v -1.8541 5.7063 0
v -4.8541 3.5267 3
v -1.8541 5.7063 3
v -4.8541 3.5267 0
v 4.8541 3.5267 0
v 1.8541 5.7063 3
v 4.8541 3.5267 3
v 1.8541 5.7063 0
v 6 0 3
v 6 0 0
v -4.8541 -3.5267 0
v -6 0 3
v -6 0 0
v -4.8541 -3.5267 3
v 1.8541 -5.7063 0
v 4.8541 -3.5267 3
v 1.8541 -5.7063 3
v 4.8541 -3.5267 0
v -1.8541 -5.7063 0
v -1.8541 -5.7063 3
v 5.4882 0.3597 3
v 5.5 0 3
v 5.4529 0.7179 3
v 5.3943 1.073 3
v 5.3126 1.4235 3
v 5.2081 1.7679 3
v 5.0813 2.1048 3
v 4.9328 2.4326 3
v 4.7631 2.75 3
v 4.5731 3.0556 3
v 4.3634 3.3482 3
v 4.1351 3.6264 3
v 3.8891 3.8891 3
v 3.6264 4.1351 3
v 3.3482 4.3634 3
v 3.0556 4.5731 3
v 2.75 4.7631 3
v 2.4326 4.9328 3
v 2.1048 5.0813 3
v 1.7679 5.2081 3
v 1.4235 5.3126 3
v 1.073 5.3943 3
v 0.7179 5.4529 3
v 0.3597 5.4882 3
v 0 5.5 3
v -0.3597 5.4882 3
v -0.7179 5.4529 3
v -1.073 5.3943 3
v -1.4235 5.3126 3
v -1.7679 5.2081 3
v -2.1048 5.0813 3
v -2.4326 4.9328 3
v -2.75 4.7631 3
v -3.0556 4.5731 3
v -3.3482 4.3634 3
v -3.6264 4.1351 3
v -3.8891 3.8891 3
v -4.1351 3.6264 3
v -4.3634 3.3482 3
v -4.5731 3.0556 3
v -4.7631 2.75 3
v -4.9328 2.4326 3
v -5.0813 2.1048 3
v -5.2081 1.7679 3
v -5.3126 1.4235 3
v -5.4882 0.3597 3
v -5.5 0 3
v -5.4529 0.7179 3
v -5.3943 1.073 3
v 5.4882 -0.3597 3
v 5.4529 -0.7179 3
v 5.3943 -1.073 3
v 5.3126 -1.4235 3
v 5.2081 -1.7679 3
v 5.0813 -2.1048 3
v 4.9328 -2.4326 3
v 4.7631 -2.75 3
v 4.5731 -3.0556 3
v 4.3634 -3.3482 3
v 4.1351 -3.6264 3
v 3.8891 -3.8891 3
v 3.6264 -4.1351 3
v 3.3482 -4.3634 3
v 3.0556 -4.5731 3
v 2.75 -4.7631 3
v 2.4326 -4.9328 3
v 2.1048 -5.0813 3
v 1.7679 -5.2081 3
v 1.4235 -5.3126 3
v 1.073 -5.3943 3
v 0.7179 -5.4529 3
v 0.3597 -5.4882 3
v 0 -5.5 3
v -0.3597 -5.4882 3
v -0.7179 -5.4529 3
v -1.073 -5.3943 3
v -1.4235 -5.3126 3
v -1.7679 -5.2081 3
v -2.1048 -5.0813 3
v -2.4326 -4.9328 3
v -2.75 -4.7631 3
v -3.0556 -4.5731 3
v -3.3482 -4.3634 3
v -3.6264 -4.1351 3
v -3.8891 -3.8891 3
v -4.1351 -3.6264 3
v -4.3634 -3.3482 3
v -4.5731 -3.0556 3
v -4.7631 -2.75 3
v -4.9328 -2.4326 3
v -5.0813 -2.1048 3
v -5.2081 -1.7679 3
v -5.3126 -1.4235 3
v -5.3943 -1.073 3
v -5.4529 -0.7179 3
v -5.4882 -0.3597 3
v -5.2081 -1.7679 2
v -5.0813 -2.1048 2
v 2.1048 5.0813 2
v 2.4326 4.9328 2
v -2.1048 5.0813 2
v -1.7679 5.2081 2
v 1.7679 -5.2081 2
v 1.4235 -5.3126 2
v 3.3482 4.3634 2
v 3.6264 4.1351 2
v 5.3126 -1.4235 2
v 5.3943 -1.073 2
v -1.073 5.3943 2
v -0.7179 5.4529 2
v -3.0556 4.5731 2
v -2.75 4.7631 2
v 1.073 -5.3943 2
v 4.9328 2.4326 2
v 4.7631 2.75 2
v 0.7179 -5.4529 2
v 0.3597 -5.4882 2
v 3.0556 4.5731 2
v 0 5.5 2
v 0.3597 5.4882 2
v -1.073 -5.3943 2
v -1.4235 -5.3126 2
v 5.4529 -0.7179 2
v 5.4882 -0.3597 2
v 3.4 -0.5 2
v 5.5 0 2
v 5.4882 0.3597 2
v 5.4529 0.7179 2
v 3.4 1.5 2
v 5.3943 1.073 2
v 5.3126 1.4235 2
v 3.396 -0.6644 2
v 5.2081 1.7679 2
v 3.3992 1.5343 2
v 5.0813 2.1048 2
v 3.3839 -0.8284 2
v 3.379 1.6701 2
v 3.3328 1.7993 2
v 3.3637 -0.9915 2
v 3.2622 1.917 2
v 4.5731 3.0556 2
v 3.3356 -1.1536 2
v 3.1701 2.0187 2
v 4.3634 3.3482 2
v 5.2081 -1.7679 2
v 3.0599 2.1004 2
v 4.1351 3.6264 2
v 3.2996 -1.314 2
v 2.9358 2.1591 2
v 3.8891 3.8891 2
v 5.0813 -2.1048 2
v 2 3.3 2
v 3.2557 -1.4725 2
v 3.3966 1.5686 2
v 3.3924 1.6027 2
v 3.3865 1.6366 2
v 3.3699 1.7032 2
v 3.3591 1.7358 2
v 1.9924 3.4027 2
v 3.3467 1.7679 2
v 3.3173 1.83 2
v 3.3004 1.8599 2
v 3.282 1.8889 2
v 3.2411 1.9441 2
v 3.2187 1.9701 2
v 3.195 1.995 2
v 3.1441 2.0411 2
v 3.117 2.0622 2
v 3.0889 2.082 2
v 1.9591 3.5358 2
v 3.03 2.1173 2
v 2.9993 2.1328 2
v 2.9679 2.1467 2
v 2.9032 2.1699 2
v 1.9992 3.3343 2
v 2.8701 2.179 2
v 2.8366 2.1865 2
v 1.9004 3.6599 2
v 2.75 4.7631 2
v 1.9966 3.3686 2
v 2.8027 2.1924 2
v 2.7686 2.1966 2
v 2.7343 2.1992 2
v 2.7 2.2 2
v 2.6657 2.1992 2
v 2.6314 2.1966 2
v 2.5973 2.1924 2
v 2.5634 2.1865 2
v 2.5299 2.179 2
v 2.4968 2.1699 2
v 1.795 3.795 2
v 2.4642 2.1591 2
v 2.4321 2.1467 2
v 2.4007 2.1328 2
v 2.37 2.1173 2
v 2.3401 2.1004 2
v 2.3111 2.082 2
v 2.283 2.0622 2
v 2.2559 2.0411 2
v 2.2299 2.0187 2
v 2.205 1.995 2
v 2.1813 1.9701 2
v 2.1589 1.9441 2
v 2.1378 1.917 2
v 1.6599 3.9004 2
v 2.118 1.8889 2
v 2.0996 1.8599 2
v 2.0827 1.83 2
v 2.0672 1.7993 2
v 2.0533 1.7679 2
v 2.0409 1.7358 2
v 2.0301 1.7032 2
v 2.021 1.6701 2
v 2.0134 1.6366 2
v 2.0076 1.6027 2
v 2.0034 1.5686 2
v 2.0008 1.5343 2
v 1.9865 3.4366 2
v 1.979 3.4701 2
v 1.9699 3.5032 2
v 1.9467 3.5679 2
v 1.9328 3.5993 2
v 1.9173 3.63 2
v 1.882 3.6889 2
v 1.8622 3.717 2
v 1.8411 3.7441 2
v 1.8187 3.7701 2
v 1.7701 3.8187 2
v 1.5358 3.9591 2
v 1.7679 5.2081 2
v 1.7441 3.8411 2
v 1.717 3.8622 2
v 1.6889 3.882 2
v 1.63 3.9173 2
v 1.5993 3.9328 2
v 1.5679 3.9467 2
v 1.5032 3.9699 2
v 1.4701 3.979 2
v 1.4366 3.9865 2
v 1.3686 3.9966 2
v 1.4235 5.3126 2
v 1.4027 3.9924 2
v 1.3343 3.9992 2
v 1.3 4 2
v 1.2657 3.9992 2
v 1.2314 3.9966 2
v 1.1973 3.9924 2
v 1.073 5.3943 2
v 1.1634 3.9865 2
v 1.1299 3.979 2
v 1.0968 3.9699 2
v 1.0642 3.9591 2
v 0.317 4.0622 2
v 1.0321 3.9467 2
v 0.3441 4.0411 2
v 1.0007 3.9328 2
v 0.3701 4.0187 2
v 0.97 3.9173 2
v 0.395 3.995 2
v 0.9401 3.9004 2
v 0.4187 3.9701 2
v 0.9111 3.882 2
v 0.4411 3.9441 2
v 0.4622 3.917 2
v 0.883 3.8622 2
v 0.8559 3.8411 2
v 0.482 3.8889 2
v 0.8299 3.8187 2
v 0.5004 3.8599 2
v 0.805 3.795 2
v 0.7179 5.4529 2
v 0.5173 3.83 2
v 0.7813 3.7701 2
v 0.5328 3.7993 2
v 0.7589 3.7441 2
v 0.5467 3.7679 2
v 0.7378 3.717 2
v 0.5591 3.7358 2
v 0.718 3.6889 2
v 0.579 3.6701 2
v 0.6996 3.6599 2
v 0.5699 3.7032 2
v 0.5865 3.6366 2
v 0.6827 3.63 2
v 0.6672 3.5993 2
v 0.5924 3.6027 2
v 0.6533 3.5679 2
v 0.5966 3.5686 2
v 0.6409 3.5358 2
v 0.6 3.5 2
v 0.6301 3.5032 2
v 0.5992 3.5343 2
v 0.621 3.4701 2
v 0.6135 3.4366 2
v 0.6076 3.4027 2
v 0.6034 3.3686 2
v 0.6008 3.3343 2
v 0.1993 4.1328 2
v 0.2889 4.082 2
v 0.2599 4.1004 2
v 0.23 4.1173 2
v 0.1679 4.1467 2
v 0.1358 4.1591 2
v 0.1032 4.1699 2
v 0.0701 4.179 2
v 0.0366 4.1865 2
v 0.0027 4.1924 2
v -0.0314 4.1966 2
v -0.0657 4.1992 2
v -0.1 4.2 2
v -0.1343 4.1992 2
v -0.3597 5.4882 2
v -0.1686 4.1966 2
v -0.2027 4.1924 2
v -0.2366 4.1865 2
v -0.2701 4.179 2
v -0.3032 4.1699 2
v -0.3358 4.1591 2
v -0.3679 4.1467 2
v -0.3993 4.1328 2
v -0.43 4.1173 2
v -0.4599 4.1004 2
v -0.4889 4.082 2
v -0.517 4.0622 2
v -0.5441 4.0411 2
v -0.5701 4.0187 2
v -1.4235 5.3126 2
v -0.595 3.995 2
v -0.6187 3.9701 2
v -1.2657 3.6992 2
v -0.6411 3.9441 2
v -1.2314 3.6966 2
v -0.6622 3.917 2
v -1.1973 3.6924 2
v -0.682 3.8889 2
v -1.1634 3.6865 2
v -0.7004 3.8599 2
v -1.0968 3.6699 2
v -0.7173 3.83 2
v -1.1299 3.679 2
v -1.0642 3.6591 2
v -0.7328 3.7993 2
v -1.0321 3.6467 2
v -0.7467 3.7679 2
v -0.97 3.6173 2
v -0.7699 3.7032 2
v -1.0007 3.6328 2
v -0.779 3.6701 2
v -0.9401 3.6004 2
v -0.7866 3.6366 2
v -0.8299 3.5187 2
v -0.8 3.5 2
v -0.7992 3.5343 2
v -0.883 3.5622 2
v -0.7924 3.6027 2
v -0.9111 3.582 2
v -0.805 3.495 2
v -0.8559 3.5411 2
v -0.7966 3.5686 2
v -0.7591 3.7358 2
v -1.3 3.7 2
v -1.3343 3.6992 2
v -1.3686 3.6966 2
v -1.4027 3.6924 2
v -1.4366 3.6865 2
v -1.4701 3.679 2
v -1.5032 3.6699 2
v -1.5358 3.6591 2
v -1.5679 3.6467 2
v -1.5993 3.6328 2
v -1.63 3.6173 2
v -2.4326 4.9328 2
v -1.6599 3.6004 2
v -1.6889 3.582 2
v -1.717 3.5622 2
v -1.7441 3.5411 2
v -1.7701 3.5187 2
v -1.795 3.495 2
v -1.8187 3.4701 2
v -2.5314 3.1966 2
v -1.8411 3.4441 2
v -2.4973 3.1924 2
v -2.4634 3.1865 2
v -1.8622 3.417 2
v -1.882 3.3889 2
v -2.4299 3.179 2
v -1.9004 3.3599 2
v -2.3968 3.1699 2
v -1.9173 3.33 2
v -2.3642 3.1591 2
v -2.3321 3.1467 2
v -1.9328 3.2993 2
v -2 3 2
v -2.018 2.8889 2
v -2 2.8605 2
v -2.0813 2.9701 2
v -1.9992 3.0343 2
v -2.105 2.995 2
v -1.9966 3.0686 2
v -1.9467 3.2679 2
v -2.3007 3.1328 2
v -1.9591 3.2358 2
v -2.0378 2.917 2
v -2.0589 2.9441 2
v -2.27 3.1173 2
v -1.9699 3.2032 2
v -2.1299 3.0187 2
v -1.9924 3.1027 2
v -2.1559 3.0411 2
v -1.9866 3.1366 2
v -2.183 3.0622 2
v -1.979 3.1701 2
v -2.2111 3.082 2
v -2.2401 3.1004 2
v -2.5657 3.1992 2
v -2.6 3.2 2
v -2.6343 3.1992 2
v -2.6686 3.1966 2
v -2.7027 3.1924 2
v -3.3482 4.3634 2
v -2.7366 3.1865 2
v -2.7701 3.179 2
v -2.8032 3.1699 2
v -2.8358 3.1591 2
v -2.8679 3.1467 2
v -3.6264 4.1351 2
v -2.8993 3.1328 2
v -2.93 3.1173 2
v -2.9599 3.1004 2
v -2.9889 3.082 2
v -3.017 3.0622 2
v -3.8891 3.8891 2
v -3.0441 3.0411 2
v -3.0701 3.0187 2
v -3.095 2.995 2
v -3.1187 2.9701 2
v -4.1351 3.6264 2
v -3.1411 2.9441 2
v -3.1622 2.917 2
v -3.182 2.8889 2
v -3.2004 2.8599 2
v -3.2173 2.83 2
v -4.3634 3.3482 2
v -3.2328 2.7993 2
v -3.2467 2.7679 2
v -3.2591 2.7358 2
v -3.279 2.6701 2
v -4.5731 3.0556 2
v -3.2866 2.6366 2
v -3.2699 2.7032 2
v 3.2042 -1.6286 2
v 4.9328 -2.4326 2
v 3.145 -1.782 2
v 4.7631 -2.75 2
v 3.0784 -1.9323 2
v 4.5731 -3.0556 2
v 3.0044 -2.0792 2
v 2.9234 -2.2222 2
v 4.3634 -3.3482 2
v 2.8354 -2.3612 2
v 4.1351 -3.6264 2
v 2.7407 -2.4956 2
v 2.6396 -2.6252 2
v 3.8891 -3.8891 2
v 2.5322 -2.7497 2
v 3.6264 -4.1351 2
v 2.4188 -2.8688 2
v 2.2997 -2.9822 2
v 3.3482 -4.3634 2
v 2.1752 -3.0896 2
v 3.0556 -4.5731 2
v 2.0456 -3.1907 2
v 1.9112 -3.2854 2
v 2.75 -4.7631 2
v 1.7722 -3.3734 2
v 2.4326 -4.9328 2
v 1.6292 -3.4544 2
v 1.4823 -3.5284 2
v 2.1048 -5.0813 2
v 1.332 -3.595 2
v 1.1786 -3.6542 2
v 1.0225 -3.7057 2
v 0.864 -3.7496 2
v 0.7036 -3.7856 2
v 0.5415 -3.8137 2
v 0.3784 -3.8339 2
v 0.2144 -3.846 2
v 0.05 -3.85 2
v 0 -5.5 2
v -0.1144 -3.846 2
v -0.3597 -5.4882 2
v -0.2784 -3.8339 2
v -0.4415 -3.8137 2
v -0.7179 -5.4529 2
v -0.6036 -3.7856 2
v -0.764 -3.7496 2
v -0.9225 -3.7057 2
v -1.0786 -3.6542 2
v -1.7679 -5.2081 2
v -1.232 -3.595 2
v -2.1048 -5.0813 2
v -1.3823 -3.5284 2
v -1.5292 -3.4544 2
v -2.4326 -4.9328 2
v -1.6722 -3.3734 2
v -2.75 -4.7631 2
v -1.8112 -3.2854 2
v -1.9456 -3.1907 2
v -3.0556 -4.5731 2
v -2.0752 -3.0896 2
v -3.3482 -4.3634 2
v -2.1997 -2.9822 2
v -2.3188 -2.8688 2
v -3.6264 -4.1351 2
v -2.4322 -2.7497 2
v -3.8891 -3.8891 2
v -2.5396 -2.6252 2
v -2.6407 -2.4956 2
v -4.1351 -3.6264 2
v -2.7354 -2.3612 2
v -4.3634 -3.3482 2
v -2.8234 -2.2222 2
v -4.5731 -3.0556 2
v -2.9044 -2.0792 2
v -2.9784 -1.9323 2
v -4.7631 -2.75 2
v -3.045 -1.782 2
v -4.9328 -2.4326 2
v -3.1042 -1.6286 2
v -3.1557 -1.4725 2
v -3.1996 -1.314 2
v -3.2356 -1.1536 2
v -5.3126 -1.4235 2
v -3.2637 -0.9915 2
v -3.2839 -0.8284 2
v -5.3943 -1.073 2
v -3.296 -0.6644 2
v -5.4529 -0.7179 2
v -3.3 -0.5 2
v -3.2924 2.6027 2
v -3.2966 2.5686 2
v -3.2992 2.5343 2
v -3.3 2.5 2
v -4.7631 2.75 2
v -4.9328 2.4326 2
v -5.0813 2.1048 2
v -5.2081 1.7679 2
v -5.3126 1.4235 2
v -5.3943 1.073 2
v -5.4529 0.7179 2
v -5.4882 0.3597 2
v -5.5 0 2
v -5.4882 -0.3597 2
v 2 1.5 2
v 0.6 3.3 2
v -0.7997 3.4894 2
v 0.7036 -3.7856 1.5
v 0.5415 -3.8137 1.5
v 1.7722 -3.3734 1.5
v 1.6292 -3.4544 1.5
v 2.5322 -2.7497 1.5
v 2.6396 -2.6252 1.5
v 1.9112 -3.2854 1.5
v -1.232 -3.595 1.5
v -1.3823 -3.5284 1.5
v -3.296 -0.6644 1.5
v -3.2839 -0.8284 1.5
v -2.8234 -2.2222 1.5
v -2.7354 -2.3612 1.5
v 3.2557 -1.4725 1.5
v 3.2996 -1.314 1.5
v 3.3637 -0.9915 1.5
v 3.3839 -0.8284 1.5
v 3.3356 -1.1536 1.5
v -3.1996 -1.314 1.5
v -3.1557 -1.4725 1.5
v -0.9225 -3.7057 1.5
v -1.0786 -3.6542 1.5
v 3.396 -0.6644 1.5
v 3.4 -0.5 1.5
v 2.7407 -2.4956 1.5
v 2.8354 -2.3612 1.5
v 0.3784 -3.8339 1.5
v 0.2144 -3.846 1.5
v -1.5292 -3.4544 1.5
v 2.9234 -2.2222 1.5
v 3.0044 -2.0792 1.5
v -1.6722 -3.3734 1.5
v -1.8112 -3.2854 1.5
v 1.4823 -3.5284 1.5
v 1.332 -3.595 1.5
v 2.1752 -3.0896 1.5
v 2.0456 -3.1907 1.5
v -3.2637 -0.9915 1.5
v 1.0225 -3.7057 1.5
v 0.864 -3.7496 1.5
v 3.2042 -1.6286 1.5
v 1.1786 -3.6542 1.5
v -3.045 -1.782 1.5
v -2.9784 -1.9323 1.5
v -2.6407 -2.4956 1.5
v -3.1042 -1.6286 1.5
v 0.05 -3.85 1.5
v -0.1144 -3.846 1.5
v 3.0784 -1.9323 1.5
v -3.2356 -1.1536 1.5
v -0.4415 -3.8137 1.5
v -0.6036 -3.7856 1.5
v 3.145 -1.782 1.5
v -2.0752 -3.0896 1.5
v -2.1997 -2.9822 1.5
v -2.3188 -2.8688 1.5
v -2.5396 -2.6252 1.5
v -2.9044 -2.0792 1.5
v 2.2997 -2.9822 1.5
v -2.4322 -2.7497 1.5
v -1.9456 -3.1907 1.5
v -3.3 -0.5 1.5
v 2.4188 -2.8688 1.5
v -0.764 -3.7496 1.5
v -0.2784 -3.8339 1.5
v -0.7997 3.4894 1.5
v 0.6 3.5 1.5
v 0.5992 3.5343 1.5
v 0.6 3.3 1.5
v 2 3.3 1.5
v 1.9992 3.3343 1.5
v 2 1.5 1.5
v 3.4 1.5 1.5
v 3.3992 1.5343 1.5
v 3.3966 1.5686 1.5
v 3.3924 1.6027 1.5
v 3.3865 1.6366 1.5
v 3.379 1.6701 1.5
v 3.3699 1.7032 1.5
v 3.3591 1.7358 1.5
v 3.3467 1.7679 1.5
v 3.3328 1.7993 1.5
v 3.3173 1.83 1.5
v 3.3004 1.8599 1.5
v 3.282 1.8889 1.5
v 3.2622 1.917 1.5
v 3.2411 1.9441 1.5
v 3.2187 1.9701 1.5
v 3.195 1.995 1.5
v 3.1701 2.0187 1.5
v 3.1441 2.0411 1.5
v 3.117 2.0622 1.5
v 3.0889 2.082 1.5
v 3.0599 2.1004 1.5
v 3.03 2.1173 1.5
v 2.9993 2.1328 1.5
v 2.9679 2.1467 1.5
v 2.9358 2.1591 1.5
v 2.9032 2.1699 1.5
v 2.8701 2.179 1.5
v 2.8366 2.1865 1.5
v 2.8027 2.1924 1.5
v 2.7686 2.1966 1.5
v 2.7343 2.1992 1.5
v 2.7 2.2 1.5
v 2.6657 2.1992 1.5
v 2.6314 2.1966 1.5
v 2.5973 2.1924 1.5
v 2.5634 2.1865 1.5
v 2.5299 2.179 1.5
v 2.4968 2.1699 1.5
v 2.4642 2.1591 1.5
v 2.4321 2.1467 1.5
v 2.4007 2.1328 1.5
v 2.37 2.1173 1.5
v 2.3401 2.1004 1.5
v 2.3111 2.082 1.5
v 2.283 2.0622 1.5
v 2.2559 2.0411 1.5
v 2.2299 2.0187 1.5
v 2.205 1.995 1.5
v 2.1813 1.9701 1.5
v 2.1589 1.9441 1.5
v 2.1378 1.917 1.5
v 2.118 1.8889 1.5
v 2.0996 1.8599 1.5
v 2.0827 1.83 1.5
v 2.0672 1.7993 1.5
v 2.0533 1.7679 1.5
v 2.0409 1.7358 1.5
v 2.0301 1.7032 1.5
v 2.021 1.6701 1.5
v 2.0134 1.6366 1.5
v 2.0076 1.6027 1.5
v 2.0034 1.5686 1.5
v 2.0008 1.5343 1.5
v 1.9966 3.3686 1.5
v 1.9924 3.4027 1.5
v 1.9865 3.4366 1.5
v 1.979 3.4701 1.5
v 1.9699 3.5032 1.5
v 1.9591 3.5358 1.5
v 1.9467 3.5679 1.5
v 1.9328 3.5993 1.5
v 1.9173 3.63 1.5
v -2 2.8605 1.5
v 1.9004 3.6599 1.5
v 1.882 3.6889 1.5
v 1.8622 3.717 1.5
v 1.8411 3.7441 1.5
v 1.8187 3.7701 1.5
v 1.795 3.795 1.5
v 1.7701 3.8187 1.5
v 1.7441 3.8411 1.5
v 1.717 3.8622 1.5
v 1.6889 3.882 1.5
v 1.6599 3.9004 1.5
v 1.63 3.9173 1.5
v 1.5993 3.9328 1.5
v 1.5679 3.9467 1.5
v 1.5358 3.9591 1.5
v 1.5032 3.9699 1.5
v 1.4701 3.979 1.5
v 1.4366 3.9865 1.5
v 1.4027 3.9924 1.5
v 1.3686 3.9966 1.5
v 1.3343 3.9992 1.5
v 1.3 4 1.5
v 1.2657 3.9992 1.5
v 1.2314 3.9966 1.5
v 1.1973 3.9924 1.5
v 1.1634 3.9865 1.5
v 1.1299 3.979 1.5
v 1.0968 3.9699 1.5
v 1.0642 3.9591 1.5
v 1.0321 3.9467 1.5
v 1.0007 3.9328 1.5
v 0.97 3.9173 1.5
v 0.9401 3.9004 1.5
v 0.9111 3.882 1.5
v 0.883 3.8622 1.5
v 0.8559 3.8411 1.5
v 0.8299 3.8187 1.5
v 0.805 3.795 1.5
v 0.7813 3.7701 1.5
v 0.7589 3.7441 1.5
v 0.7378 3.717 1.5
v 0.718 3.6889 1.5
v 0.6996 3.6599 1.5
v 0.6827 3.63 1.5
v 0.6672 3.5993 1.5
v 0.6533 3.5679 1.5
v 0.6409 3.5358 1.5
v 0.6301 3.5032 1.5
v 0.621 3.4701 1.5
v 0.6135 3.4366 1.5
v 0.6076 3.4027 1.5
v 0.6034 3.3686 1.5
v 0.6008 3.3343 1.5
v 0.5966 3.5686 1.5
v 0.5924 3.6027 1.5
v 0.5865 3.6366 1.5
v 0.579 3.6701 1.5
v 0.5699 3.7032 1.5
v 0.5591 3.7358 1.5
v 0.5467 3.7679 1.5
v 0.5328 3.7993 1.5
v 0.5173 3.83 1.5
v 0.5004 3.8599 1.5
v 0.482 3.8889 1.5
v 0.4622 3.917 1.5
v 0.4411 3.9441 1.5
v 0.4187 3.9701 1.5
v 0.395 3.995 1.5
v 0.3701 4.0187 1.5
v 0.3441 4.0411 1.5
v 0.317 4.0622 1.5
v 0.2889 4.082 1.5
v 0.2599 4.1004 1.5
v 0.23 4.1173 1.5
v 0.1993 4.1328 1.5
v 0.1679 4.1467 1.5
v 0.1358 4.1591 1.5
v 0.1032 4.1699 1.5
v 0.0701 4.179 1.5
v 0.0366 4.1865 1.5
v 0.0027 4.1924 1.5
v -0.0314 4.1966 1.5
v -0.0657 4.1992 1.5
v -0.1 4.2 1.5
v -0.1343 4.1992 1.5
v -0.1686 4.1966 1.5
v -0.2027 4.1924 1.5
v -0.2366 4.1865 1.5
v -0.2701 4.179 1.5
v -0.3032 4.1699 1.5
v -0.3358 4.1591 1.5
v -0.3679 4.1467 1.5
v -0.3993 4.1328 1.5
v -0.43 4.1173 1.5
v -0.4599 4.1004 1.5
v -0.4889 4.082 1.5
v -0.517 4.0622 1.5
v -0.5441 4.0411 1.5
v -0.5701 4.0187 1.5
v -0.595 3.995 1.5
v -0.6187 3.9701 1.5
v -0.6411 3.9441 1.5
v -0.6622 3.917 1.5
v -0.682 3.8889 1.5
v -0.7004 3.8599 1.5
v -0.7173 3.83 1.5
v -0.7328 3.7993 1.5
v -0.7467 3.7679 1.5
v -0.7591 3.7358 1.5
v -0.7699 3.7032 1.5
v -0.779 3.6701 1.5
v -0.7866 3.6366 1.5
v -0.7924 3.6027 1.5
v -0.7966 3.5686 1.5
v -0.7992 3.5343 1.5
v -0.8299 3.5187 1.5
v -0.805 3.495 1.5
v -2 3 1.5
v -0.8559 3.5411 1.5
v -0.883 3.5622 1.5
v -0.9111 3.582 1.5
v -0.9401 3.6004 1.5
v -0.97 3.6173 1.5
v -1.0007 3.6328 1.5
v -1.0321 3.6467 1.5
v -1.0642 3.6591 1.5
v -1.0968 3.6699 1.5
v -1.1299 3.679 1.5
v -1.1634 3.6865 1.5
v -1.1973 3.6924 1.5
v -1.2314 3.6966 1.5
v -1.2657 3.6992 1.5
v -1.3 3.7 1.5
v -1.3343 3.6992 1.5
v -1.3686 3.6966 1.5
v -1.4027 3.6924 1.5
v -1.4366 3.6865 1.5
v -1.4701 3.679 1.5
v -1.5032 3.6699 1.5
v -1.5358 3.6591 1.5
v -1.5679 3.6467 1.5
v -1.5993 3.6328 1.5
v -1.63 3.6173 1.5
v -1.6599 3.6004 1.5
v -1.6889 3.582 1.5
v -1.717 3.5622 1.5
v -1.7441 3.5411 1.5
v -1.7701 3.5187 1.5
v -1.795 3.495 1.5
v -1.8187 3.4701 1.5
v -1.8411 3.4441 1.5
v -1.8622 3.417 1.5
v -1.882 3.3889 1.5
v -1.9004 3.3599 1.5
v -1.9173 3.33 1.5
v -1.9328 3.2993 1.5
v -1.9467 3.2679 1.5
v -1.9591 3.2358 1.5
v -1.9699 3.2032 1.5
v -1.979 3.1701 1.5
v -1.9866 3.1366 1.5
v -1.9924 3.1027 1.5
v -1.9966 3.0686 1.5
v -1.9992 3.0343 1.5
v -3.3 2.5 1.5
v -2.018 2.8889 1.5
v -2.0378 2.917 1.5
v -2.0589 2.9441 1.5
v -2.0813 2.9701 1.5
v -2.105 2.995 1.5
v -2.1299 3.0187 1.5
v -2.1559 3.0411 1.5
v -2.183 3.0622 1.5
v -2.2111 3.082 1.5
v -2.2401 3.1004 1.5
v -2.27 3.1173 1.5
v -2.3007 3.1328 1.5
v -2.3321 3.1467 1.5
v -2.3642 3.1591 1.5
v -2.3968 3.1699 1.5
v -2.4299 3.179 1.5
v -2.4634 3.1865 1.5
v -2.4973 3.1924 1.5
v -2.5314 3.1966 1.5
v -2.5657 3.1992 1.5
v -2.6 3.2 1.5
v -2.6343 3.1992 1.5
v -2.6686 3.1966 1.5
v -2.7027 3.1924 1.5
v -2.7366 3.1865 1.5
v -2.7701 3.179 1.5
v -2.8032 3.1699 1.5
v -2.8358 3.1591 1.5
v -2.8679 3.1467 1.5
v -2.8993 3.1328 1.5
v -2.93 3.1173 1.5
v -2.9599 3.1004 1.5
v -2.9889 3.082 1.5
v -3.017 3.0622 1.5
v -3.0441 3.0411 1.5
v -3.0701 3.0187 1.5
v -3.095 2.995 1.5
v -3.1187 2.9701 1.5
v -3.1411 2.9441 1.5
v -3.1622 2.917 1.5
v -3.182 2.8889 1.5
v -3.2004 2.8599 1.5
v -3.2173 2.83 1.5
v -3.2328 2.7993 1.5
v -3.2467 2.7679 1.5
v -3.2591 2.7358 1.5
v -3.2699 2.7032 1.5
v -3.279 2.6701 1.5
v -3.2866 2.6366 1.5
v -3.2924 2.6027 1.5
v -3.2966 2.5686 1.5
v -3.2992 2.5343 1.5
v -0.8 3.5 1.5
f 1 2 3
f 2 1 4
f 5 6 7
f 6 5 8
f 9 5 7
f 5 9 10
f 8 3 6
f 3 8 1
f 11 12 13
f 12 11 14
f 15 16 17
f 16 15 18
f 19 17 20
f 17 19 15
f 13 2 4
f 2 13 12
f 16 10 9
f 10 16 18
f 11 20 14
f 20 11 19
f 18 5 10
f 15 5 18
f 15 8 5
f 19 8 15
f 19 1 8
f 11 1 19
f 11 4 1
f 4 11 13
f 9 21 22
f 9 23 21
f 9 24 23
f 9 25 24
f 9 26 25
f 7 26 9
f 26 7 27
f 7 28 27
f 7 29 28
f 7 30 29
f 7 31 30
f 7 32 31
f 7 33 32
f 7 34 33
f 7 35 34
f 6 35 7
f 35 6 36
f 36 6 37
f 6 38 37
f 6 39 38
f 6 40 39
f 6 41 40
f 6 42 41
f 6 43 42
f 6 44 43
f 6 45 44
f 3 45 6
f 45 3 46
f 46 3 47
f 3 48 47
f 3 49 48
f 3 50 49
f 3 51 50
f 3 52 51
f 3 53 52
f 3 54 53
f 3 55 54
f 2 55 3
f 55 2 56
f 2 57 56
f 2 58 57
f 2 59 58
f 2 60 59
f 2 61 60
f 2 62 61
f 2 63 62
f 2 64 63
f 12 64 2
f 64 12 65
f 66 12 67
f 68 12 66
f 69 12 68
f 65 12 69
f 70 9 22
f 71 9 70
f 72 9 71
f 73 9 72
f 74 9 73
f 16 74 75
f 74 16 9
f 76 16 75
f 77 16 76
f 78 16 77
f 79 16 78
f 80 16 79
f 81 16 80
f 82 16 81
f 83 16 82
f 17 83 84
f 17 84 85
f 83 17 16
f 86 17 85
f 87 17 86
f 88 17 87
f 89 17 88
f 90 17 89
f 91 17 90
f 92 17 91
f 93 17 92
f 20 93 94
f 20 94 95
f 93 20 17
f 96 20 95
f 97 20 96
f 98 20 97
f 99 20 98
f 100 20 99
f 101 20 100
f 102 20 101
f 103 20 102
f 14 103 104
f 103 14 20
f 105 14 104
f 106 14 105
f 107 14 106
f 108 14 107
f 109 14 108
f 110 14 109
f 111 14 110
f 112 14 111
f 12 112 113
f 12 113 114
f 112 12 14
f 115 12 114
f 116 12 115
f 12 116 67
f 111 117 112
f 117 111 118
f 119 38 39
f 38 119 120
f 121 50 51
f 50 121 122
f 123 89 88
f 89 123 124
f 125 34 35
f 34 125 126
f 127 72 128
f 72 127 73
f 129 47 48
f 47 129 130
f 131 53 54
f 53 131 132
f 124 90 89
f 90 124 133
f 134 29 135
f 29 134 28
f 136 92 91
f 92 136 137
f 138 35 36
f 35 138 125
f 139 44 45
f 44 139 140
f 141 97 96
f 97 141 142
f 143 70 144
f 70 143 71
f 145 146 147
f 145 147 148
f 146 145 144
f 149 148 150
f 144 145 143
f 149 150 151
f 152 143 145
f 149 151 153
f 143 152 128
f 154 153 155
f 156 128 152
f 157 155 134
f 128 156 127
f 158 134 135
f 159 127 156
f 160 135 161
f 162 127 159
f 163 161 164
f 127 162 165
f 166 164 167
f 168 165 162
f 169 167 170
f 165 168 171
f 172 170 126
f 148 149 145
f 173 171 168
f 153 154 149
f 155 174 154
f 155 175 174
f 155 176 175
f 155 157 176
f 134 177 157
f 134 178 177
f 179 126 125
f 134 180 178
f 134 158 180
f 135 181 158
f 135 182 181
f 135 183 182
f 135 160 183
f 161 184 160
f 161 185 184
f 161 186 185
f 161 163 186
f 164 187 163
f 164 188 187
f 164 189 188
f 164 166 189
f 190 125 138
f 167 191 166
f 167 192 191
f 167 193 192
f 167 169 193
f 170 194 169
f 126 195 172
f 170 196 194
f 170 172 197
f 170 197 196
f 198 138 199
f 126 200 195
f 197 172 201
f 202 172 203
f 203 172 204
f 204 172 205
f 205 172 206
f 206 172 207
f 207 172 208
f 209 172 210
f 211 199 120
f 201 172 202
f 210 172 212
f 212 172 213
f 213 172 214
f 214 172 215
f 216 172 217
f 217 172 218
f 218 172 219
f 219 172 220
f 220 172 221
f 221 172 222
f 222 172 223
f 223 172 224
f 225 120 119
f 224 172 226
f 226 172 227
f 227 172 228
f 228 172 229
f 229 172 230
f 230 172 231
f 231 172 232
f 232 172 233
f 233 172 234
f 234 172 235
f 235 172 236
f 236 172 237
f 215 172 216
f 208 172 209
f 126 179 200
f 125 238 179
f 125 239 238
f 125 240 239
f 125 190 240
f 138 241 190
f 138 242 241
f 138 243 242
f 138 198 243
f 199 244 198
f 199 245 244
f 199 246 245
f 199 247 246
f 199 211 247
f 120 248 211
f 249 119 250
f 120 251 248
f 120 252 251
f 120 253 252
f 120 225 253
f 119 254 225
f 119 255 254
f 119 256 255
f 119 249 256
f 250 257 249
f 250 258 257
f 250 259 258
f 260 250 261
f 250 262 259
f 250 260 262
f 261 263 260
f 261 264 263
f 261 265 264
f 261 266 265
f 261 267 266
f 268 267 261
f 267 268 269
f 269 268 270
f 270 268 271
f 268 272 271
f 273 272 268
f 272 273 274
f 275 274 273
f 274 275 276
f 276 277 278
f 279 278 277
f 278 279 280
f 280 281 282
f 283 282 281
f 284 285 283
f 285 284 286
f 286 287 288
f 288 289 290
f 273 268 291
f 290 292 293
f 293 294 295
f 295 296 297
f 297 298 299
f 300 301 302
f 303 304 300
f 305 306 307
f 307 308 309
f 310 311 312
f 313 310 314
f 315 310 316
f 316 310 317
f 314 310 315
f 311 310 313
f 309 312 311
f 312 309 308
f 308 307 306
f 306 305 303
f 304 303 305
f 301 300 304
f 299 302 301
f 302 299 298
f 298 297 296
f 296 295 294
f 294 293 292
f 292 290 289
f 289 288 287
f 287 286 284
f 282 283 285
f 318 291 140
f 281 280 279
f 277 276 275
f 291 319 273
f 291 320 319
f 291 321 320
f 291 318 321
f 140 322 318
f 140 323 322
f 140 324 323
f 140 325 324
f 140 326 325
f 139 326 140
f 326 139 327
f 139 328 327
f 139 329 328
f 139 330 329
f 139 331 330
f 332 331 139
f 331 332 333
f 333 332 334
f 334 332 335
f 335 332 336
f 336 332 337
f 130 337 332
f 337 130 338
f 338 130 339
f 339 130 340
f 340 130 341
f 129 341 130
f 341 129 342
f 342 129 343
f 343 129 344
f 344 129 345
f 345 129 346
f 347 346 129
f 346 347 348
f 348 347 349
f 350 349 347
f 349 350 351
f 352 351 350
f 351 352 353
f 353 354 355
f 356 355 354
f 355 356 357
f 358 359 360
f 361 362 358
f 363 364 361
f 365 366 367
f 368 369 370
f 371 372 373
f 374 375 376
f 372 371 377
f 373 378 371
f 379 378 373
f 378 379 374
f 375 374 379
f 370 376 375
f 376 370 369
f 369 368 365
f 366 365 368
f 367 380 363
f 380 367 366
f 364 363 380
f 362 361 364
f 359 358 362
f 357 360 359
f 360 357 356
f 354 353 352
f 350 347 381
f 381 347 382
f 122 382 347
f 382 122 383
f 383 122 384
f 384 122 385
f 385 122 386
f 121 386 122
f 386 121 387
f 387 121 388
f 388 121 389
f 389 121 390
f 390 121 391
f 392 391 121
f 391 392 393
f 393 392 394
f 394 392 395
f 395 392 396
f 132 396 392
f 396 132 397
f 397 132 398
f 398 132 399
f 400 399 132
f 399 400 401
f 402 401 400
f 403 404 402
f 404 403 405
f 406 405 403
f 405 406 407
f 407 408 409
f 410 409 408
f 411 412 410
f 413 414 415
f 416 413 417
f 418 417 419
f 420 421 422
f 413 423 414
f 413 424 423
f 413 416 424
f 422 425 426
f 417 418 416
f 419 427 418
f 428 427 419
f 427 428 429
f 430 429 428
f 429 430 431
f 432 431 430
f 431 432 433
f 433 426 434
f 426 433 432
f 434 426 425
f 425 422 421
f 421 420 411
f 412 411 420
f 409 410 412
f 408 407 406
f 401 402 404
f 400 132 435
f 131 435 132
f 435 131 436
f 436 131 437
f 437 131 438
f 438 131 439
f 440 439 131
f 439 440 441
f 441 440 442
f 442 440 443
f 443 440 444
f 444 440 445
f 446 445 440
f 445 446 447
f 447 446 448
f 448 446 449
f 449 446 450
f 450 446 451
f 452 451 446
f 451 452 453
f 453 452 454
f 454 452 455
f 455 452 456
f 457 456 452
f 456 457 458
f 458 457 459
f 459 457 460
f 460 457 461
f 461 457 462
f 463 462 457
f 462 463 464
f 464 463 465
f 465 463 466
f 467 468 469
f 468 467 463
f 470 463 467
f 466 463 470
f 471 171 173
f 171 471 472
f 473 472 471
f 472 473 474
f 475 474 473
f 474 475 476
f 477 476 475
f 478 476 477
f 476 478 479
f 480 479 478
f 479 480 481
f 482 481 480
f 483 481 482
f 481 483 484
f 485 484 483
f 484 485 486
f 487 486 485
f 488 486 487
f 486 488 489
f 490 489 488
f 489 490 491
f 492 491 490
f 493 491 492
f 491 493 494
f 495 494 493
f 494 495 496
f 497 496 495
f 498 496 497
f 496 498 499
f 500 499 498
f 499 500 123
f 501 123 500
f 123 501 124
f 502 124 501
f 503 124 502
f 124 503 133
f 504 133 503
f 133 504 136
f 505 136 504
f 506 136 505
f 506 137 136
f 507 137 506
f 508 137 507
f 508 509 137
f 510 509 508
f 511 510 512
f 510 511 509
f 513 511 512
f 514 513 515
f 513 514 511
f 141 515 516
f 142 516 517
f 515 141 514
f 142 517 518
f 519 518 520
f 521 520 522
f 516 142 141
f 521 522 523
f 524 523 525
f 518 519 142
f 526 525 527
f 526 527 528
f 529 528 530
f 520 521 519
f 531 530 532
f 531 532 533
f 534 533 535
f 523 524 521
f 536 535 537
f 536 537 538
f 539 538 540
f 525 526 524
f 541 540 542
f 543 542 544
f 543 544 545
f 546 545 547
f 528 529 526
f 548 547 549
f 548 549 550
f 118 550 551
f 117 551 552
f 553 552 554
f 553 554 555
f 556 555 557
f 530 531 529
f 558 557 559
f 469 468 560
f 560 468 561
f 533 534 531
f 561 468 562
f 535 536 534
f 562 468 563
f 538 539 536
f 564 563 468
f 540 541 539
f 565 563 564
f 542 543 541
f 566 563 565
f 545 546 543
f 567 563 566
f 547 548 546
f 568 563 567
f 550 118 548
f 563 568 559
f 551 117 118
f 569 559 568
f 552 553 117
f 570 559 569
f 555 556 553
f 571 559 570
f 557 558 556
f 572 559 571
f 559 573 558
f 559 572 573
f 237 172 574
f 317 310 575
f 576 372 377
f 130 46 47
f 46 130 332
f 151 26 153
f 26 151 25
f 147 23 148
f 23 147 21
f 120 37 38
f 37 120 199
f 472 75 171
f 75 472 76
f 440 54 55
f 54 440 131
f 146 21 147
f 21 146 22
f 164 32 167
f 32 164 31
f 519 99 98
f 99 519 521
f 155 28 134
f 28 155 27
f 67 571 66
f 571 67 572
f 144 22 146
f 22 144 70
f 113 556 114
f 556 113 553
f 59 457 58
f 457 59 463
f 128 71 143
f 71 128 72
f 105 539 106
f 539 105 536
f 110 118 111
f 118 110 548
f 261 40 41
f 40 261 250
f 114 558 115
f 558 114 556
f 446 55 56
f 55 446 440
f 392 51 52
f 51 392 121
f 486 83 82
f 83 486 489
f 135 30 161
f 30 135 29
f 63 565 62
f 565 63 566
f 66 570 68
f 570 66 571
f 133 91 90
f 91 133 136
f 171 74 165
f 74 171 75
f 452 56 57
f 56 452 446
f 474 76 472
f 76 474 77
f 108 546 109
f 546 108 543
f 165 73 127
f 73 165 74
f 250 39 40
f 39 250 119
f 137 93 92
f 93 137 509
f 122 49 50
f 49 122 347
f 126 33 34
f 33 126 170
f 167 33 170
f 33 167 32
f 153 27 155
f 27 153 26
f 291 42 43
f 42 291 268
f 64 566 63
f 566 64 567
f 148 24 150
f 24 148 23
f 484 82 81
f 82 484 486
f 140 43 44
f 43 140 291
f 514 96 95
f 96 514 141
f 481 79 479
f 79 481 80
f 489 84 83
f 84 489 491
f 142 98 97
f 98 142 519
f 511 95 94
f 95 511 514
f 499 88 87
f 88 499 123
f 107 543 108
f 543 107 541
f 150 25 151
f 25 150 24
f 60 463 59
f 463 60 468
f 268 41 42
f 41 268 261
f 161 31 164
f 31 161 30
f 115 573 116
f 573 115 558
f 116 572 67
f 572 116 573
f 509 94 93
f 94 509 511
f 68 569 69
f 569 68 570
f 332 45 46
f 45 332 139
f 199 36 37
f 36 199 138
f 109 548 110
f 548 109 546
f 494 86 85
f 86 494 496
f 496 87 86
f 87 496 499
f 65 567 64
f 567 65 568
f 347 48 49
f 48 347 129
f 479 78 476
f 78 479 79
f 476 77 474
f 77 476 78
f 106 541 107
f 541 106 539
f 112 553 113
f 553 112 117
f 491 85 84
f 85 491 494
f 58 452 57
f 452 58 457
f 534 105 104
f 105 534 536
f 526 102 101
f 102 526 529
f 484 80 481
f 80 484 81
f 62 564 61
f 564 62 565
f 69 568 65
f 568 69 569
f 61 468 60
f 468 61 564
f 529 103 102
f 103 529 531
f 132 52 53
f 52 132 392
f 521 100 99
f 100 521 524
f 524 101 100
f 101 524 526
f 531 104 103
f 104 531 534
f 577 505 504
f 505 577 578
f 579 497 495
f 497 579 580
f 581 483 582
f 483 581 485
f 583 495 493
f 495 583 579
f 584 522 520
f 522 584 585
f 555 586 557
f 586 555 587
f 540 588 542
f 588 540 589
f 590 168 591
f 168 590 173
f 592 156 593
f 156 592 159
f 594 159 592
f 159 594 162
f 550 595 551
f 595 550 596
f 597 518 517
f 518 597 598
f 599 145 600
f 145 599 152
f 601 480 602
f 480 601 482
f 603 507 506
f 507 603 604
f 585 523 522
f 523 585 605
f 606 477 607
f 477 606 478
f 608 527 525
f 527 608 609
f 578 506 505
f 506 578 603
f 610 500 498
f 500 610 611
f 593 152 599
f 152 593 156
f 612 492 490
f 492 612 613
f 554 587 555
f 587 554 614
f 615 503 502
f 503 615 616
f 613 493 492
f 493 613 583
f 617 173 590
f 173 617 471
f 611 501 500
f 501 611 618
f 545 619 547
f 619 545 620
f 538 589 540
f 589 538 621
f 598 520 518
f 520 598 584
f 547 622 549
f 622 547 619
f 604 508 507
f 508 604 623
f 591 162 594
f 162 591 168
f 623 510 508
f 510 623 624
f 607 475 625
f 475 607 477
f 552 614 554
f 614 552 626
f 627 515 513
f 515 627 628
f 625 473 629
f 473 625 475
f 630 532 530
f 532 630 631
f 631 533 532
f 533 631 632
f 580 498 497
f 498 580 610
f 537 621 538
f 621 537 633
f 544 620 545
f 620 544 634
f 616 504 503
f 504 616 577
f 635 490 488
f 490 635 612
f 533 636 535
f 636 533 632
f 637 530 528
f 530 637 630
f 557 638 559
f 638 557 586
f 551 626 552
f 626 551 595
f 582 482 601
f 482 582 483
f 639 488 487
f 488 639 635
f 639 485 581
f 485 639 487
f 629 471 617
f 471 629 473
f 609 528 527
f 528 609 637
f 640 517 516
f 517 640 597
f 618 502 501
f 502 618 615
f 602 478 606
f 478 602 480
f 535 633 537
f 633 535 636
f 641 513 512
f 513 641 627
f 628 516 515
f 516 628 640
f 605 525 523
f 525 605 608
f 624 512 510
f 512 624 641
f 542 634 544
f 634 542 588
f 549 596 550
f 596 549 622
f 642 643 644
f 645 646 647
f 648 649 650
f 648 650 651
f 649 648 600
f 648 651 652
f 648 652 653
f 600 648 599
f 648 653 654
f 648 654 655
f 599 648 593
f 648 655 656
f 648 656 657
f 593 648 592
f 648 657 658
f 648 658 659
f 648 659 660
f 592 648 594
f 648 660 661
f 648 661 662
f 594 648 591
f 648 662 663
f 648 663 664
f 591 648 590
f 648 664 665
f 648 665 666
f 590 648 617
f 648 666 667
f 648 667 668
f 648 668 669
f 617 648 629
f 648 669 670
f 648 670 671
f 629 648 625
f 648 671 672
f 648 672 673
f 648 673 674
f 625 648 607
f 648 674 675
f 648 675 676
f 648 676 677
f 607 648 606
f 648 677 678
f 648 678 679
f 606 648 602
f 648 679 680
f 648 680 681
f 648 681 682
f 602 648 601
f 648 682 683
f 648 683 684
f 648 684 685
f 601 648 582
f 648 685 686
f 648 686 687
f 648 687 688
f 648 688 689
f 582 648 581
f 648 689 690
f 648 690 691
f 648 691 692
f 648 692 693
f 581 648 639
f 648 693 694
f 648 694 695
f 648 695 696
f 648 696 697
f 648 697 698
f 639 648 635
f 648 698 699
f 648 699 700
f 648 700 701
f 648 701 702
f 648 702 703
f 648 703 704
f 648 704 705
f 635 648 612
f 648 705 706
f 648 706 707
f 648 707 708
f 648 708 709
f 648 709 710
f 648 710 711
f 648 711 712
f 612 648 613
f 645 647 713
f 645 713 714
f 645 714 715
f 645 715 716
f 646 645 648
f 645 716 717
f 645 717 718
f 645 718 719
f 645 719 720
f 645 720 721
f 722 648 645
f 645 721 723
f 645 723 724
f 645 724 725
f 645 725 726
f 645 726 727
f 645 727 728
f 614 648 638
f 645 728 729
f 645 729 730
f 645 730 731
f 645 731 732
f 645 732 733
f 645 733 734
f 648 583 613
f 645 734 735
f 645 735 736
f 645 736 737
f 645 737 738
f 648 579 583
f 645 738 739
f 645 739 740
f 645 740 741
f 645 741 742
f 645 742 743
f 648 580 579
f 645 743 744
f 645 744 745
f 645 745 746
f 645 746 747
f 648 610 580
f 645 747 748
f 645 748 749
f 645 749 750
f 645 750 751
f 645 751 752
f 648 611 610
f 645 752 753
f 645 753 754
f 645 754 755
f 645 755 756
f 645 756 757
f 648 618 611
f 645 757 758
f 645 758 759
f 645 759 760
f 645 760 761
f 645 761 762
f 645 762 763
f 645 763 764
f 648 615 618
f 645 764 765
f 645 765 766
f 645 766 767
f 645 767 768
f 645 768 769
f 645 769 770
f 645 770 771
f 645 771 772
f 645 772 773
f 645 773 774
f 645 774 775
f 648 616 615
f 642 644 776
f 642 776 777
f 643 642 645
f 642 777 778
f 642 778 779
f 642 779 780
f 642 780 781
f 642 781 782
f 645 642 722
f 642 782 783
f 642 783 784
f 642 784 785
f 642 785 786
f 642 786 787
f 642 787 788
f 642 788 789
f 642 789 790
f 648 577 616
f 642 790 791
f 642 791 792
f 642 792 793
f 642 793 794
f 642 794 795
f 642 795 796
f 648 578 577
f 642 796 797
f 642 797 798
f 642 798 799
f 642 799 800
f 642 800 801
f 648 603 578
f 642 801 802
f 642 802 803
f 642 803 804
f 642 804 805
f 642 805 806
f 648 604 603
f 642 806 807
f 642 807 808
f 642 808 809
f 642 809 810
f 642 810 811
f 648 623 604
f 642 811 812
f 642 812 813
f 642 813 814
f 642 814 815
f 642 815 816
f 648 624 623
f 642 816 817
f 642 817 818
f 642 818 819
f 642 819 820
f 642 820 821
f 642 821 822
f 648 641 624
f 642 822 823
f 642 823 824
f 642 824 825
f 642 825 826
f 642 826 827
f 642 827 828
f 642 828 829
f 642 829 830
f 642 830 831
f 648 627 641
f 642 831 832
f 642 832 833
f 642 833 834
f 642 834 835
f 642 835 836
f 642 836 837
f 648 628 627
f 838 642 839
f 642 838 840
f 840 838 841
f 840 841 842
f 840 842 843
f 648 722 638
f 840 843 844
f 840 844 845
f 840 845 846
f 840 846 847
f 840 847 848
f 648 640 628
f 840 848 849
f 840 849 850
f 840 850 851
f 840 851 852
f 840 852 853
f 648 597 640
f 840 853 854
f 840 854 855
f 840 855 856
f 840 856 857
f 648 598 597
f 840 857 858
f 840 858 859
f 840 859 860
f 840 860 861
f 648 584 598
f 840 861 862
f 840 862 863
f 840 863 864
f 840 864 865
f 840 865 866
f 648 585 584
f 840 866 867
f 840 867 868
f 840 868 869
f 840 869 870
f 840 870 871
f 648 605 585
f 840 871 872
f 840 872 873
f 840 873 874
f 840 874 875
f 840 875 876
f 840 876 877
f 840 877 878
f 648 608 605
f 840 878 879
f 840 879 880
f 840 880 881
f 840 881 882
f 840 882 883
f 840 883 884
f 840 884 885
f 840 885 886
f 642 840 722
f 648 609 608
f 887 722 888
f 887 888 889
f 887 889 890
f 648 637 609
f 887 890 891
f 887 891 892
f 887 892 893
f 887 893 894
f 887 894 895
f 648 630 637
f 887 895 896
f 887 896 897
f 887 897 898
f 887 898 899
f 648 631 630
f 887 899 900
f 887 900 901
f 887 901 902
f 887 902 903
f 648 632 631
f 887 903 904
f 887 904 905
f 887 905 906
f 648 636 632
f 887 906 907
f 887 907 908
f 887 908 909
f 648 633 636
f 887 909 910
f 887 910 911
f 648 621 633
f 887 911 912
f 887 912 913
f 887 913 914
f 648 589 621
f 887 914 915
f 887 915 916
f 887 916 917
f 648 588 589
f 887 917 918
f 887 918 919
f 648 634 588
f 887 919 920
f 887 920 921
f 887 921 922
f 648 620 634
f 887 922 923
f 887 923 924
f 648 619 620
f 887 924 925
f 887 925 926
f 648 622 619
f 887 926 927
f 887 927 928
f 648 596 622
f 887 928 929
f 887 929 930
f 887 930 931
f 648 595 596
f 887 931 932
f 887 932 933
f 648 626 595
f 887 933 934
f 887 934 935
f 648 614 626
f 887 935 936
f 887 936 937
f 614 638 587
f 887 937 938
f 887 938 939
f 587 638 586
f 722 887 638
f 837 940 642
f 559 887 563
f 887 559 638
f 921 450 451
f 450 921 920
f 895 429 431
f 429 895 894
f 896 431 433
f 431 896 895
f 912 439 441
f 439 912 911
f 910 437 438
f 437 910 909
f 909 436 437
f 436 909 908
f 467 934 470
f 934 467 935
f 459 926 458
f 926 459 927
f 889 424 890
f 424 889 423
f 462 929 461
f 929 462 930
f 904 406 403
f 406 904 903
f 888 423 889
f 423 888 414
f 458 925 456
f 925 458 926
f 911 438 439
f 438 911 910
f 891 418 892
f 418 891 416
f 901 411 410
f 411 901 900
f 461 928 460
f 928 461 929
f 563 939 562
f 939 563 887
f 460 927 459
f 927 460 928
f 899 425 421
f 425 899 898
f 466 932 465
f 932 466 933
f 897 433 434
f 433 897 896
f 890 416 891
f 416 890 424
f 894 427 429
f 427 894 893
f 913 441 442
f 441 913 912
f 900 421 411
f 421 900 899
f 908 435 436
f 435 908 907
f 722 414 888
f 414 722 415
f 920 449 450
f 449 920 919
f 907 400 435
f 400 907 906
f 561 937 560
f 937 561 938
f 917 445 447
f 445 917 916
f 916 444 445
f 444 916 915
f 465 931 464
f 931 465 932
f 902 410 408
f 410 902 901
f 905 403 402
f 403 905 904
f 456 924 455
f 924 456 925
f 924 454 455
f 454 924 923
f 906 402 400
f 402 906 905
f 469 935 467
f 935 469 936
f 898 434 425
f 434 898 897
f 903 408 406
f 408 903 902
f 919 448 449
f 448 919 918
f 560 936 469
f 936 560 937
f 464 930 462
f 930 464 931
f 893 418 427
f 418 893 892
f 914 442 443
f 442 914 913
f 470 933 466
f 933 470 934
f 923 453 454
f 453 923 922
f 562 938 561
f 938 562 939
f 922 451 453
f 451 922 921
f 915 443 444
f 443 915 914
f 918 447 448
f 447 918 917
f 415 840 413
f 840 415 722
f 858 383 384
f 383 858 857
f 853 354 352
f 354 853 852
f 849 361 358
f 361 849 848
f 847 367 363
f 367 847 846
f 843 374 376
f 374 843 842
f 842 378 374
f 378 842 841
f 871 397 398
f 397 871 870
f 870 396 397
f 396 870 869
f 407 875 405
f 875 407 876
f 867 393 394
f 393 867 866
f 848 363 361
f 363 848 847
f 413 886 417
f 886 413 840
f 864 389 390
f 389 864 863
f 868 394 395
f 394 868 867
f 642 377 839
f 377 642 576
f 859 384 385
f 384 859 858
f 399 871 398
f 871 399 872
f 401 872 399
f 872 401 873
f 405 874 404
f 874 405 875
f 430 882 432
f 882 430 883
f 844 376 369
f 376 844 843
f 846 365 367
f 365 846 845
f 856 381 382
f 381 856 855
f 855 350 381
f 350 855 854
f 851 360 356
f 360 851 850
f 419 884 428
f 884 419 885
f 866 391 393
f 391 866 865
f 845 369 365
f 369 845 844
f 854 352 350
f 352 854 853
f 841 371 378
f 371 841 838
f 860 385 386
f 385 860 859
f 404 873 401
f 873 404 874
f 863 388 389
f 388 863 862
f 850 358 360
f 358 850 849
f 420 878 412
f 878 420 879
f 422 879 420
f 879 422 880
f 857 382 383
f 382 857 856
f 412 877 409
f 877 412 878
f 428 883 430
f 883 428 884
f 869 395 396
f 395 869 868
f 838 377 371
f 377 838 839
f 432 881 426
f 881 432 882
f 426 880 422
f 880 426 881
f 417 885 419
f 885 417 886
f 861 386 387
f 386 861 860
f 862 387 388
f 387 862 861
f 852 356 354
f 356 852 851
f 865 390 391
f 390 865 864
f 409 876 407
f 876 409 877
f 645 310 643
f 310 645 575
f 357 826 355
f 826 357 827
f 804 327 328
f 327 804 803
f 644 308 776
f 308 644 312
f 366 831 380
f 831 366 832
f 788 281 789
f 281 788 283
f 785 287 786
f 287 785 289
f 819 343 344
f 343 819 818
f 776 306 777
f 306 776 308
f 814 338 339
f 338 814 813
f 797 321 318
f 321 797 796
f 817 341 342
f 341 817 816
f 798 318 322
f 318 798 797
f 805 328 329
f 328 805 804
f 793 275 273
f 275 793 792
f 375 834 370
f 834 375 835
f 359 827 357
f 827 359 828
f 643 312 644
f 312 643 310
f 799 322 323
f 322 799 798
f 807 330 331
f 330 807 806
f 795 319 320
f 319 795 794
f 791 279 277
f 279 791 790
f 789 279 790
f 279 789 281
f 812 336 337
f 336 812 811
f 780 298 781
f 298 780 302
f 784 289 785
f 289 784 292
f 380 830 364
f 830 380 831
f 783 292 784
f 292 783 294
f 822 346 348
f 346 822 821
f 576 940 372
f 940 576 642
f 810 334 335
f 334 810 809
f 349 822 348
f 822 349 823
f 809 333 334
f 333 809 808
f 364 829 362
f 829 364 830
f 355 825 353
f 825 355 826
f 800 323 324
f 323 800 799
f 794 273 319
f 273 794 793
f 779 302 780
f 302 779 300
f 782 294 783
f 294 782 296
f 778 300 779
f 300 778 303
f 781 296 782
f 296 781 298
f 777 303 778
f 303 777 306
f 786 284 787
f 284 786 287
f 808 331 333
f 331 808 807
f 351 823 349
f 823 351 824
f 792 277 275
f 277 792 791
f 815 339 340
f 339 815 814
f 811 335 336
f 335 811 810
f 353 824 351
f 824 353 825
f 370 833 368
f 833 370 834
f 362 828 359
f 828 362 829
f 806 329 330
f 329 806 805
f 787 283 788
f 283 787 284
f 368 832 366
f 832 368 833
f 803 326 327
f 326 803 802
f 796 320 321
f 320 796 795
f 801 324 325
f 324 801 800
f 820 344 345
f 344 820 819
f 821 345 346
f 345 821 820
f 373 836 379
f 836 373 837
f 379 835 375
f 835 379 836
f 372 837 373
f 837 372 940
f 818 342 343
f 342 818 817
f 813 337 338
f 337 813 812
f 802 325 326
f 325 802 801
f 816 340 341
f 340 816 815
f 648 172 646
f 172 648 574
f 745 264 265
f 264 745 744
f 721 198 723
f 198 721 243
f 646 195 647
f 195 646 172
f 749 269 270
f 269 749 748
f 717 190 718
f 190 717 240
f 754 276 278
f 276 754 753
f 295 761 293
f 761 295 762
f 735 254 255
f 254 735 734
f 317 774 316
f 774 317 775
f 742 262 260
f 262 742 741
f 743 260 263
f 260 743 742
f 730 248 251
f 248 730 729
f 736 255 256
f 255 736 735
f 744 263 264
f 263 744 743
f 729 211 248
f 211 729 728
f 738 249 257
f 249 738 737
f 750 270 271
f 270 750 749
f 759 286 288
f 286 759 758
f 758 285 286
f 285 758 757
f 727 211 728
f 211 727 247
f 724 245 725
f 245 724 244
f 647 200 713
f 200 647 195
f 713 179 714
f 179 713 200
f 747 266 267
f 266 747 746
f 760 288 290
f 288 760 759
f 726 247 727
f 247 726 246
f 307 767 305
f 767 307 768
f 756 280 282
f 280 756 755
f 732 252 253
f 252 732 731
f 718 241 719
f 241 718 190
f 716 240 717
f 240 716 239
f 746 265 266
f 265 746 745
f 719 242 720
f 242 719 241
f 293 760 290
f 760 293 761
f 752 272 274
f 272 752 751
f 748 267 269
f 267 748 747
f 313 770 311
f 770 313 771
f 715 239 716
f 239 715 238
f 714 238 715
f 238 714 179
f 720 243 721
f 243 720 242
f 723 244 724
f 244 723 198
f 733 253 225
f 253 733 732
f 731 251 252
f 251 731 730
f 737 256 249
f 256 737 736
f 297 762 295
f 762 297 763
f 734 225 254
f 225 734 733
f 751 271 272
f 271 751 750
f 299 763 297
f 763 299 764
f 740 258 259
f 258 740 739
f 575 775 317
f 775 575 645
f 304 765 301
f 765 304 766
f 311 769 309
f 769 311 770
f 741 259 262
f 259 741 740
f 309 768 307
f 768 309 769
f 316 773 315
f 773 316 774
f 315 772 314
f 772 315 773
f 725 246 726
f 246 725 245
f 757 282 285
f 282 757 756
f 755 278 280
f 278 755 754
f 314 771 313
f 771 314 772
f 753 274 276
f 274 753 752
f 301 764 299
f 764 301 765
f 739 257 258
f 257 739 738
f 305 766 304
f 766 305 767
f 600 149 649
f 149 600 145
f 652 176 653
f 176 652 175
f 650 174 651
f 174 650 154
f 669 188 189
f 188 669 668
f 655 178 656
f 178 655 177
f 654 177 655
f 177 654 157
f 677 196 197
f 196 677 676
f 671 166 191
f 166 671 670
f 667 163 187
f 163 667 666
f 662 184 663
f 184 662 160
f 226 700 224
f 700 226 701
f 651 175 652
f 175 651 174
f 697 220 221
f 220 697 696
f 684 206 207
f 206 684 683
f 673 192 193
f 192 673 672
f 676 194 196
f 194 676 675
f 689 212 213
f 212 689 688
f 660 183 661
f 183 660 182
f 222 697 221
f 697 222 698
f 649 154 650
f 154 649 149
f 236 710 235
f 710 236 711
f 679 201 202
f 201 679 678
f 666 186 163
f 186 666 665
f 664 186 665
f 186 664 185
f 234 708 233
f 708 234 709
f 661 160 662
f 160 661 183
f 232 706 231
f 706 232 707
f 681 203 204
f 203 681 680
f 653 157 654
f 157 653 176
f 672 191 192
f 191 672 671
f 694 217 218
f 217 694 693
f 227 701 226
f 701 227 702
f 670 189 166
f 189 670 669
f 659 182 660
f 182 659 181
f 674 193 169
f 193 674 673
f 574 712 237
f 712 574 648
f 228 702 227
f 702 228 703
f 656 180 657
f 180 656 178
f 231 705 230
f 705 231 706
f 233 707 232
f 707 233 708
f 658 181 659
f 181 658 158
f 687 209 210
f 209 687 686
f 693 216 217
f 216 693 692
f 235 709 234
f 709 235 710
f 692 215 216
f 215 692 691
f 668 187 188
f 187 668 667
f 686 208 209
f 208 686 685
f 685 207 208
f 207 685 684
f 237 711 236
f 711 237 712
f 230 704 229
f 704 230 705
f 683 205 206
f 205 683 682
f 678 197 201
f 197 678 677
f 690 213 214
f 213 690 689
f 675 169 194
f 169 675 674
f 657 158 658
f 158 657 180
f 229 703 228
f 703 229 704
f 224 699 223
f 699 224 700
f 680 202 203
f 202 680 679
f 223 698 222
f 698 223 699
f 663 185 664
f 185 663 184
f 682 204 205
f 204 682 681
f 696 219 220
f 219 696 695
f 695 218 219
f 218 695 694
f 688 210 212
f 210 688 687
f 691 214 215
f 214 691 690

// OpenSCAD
difference() {
    color("blue")
    difference() {
        cylinder(d=12,h=3,$fn=10);
        translate([0,0,2])
        cylinder(d=11,h=1.5,$fn=96);
    }
 
    translate([-3.3,-0.5,1.5])
    color("gold")
    union() {
        cube([1.5,3,2]);
        translate([0.7,3,0])
        cylinder(d=1.4,h=2, $fn=128);

        translate([1.3,0,0])
        cube([1.4,3.5,2]);
        translate([2,3.5,0])
        cylinder(d=1.4,h=2, $fn=128);

        translate([2.6,0,0])
        cube([1.3,4,2]);
        translate([3.2,4,0])
        cylinder(d=1.4,h=2, $fn=128);

        translate([3.9,0,0])
        cube([1.4,3.8,2]);
        translate([4.6,3.8,0])
        cylinder(d=1.4,h=2, $fn=128);

        translate([5.3,0,0])
        cube([1.4,2,2]);
        translate([6,2,0])
        cylinder(d=1.4,h=2, $fn=128);
        
        translate([3.35,0,0])
        difference() {
            cylinder(d=6.7,h=2,$fn=128);
            translate([-7,0,-0.1])
            cube([15,8,3]);
        }
    }
}
